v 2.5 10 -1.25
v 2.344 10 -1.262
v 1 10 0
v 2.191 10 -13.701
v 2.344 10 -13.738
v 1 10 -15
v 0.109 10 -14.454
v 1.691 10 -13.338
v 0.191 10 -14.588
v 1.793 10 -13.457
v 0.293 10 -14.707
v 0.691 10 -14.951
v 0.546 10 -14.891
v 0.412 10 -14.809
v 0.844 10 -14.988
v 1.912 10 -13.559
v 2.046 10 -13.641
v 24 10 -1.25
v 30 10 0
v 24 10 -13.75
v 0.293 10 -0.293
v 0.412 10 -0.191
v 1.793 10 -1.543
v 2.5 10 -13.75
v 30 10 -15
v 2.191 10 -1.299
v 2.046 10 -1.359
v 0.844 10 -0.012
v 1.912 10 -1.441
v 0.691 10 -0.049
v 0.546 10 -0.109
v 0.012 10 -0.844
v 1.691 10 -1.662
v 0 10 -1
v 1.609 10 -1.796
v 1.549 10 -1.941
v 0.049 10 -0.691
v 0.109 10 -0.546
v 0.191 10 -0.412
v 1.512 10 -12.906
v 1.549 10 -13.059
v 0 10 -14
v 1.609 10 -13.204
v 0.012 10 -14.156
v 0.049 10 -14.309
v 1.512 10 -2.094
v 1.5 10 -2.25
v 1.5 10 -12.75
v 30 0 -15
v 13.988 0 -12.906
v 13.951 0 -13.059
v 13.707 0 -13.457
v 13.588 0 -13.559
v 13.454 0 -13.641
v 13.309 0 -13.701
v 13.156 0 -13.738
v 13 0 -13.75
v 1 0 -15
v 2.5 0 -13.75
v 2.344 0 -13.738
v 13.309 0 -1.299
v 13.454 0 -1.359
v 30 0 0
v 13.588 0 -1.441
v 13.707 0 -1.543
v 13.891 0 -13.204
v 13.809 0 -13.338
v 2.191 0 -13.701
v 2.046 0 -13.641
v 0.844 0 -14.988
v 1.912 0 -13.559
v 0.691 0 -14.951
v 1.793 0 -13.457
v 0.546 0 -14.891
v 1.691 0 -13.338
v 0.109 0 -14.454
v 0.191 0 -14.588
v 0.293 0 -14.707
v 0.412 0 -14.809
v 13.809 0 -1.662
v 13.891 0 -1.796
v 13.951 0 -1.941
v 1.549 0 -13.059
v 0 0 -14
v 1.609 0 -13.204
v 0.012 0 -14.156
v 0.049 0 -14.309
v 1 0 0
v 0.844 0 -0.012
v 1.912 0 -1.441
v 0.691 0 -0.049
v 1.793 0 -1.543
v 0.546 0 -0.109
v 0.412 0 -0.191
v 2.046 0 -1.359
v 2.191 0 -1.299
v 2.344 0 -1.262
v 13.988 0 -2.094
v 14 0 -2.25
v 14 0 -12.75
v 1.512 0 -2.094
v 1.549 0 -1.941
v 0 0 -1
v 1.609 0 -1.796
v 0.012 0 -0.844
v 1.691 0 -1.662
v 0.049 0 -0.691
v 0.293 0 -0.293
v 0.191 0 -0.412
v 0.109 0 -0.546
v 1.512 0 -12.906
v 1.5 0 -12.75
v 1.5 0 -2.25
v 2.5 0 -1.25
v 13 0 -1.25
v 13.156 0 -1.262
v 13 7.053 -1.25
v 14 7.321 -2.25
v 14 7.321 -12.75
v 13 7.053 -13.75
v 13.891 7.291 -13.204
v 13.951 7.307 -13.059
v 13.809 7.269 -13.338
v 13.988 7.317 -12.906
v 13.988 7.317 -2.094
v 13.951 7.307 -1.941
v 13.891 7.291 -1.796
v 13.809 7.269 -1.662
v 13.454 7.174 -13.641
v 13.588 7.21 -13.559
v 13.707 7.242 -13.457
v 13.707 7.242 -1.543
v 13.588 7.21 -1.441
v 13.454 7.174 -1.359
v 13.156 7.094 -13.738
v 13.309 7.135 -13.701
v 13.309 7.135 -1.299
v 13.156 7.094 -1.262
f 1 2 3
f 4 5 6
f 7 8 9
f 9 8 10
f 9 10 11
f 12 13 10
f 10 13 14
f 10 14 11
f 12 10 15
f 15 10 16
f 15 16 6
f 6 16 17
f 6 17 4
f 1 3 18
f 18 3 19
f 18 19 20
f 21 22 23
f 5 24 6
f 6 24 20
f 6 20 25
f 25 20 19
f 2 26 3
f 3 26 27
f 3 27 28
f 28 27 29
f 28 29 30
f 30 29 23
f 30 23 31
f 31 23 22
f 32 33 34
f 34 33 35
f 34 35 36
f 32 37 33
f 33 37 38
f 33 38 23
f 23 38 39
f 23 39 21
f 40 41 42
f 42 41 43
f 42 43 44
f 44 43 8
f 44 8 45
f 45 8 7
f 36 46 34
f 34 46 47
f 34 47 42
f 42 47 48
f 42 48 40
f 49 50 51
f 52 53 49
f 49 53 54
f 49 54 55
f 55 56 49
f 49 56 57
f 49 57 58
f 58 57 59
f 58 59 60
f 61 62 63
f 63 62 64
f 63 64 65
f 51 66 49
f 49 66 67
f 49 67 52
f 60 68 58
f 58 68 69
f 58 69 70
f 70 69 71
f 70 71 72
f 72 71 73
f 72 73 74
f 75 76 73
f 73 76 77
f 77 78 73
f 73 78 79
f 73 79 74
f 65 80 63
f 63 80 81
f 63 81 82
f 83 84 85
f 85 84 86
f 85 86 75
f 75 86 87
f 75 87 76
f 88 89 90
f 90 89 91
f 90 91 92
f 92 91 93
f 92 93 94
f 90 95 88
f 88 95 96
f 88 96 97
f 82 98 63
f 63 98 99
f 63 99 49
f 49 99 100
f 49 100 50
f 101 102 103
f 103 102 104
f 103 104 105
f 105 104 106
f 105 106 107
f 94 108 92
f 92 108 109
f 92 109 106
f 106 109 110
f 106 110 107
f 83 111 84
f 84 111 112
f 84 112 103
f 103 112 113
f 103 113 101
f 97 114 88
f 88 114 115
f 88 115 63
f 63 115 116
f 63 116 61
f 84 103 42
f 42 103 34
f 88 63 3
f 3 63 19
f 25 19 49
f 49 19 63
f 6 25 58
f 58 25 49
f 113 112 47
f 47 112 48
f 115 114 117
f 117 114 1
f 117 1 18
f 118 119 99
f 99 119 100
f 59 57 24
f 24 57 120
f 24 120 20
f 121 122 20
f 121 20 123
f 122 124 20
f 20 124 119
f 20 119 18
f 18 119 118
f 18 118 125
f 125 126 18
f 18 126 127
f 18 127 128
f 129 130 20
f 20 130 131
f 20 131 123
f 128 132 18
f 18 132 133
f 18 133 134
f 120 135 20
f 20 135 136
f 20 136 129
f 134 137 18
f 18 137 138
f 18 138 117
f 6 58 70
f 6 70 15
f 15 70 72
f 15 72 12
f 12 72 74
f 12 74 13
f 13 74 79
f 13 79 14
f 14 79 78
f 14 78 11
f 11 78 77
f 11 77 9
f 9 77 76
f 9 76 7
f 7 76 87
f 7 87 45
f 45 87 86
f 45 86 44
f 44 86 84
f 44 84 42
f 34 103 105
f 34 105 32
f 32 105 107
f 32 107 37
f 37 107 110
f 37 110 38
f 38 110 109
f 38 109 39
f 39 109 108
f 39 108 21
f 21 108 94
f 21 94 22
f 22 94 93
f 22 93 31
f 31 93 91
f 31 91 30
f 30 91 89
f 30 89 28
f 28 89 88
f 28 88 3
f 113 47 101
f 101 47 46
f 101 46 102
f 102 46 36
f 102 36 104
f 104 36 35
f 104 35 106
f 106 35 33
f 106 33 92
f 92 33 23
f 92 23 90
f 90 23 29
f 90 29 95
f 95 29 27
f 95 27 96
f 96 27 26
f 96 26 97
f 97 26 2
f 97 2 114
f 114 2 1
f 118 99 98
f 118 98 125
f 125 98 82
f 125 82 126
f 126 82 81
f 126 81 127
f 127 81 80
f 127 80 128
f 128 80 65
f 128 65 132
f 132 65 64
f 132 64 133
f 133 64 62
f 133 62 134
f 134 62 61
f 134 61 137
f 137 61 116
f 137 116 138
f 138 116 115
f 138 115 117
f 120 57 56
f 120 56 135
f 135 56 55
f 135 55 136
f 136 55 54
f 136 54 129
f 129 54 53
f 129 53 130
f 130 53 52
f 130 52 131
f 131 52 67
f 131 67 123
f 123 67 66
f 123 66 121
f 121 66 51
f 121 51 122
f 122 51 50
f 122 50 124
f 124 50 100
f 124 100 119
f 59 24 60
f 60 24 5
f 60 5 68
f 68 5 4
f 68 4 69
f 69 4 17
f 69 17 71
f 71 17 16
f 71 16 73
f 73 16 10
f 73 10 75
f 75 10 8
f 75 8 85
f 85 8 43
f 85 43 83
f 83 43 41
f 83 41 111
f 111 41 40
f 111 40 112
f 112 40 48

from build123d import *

# Parameters (mm, degrees)
CROQUIS1_W              = 30
CROQUIS1_H              = 15
CROQUIS1_W_2            = 12.5
CROQUIS1_H_2            = 12.5
SALIENTE_EXTRUIR1_DEPTH = 10
CHAFL_N1_SIZE           = 10
CHAFL_N1_SIZE2          = 2.679491924
REDONDEO1_R             = 1


with BuildPart() as part:
    # Croquis1 → Saliente-Extruir1 (new body)
    with BuildSketch(Plane(origin=(0, 0, 0), x_dir=(1, 0, 0), z_dir=(0, 1, 0))):
        with Locations((15, 7.5)):
            Rectangle(CROQUIS1_W, CROQUIS1_H)
        with Locations((7.75, 7.5)):
            Rectangle(CROQUIS1_W_2, CROQUIS1_H_2, mode=Mode.SUBTRACT)
    extrude(amount=SALIENTE_EXTRUIR1_DEPTH)

    # Chaflán1
    chafl_n1_edges = [part.edges().sort_by_distance(p)[0] for p in [
        (14, 10, -7.5),
    ]]
    chafl_n1_side = [part.faces().sort_by_distance(p)[0] for p in [
        (18.856382979, 10, -7.5),
    ]]
    chamfer(chafl_n1_edges, length=CHAFL_N1_SIZE, length2=CHAFL_N1_SIZE2, reference=chafl_n1_side[0])

    # Redondeo1
    redondeo1_edges = [part.edges().sort_by_distance(p)[0] for p in [
        (1.5, 5, -13.75),
        (1.5, 5, -1.25),
        (14, 3.660254038, -1.25),
        (14, 3.660254038, -13.75),
        (0, 5, -15),
        (0, 5, 0),
    ]]
    fillet(redondeo1_edges, radius=REDONDEO1_R)


solid = part.part
